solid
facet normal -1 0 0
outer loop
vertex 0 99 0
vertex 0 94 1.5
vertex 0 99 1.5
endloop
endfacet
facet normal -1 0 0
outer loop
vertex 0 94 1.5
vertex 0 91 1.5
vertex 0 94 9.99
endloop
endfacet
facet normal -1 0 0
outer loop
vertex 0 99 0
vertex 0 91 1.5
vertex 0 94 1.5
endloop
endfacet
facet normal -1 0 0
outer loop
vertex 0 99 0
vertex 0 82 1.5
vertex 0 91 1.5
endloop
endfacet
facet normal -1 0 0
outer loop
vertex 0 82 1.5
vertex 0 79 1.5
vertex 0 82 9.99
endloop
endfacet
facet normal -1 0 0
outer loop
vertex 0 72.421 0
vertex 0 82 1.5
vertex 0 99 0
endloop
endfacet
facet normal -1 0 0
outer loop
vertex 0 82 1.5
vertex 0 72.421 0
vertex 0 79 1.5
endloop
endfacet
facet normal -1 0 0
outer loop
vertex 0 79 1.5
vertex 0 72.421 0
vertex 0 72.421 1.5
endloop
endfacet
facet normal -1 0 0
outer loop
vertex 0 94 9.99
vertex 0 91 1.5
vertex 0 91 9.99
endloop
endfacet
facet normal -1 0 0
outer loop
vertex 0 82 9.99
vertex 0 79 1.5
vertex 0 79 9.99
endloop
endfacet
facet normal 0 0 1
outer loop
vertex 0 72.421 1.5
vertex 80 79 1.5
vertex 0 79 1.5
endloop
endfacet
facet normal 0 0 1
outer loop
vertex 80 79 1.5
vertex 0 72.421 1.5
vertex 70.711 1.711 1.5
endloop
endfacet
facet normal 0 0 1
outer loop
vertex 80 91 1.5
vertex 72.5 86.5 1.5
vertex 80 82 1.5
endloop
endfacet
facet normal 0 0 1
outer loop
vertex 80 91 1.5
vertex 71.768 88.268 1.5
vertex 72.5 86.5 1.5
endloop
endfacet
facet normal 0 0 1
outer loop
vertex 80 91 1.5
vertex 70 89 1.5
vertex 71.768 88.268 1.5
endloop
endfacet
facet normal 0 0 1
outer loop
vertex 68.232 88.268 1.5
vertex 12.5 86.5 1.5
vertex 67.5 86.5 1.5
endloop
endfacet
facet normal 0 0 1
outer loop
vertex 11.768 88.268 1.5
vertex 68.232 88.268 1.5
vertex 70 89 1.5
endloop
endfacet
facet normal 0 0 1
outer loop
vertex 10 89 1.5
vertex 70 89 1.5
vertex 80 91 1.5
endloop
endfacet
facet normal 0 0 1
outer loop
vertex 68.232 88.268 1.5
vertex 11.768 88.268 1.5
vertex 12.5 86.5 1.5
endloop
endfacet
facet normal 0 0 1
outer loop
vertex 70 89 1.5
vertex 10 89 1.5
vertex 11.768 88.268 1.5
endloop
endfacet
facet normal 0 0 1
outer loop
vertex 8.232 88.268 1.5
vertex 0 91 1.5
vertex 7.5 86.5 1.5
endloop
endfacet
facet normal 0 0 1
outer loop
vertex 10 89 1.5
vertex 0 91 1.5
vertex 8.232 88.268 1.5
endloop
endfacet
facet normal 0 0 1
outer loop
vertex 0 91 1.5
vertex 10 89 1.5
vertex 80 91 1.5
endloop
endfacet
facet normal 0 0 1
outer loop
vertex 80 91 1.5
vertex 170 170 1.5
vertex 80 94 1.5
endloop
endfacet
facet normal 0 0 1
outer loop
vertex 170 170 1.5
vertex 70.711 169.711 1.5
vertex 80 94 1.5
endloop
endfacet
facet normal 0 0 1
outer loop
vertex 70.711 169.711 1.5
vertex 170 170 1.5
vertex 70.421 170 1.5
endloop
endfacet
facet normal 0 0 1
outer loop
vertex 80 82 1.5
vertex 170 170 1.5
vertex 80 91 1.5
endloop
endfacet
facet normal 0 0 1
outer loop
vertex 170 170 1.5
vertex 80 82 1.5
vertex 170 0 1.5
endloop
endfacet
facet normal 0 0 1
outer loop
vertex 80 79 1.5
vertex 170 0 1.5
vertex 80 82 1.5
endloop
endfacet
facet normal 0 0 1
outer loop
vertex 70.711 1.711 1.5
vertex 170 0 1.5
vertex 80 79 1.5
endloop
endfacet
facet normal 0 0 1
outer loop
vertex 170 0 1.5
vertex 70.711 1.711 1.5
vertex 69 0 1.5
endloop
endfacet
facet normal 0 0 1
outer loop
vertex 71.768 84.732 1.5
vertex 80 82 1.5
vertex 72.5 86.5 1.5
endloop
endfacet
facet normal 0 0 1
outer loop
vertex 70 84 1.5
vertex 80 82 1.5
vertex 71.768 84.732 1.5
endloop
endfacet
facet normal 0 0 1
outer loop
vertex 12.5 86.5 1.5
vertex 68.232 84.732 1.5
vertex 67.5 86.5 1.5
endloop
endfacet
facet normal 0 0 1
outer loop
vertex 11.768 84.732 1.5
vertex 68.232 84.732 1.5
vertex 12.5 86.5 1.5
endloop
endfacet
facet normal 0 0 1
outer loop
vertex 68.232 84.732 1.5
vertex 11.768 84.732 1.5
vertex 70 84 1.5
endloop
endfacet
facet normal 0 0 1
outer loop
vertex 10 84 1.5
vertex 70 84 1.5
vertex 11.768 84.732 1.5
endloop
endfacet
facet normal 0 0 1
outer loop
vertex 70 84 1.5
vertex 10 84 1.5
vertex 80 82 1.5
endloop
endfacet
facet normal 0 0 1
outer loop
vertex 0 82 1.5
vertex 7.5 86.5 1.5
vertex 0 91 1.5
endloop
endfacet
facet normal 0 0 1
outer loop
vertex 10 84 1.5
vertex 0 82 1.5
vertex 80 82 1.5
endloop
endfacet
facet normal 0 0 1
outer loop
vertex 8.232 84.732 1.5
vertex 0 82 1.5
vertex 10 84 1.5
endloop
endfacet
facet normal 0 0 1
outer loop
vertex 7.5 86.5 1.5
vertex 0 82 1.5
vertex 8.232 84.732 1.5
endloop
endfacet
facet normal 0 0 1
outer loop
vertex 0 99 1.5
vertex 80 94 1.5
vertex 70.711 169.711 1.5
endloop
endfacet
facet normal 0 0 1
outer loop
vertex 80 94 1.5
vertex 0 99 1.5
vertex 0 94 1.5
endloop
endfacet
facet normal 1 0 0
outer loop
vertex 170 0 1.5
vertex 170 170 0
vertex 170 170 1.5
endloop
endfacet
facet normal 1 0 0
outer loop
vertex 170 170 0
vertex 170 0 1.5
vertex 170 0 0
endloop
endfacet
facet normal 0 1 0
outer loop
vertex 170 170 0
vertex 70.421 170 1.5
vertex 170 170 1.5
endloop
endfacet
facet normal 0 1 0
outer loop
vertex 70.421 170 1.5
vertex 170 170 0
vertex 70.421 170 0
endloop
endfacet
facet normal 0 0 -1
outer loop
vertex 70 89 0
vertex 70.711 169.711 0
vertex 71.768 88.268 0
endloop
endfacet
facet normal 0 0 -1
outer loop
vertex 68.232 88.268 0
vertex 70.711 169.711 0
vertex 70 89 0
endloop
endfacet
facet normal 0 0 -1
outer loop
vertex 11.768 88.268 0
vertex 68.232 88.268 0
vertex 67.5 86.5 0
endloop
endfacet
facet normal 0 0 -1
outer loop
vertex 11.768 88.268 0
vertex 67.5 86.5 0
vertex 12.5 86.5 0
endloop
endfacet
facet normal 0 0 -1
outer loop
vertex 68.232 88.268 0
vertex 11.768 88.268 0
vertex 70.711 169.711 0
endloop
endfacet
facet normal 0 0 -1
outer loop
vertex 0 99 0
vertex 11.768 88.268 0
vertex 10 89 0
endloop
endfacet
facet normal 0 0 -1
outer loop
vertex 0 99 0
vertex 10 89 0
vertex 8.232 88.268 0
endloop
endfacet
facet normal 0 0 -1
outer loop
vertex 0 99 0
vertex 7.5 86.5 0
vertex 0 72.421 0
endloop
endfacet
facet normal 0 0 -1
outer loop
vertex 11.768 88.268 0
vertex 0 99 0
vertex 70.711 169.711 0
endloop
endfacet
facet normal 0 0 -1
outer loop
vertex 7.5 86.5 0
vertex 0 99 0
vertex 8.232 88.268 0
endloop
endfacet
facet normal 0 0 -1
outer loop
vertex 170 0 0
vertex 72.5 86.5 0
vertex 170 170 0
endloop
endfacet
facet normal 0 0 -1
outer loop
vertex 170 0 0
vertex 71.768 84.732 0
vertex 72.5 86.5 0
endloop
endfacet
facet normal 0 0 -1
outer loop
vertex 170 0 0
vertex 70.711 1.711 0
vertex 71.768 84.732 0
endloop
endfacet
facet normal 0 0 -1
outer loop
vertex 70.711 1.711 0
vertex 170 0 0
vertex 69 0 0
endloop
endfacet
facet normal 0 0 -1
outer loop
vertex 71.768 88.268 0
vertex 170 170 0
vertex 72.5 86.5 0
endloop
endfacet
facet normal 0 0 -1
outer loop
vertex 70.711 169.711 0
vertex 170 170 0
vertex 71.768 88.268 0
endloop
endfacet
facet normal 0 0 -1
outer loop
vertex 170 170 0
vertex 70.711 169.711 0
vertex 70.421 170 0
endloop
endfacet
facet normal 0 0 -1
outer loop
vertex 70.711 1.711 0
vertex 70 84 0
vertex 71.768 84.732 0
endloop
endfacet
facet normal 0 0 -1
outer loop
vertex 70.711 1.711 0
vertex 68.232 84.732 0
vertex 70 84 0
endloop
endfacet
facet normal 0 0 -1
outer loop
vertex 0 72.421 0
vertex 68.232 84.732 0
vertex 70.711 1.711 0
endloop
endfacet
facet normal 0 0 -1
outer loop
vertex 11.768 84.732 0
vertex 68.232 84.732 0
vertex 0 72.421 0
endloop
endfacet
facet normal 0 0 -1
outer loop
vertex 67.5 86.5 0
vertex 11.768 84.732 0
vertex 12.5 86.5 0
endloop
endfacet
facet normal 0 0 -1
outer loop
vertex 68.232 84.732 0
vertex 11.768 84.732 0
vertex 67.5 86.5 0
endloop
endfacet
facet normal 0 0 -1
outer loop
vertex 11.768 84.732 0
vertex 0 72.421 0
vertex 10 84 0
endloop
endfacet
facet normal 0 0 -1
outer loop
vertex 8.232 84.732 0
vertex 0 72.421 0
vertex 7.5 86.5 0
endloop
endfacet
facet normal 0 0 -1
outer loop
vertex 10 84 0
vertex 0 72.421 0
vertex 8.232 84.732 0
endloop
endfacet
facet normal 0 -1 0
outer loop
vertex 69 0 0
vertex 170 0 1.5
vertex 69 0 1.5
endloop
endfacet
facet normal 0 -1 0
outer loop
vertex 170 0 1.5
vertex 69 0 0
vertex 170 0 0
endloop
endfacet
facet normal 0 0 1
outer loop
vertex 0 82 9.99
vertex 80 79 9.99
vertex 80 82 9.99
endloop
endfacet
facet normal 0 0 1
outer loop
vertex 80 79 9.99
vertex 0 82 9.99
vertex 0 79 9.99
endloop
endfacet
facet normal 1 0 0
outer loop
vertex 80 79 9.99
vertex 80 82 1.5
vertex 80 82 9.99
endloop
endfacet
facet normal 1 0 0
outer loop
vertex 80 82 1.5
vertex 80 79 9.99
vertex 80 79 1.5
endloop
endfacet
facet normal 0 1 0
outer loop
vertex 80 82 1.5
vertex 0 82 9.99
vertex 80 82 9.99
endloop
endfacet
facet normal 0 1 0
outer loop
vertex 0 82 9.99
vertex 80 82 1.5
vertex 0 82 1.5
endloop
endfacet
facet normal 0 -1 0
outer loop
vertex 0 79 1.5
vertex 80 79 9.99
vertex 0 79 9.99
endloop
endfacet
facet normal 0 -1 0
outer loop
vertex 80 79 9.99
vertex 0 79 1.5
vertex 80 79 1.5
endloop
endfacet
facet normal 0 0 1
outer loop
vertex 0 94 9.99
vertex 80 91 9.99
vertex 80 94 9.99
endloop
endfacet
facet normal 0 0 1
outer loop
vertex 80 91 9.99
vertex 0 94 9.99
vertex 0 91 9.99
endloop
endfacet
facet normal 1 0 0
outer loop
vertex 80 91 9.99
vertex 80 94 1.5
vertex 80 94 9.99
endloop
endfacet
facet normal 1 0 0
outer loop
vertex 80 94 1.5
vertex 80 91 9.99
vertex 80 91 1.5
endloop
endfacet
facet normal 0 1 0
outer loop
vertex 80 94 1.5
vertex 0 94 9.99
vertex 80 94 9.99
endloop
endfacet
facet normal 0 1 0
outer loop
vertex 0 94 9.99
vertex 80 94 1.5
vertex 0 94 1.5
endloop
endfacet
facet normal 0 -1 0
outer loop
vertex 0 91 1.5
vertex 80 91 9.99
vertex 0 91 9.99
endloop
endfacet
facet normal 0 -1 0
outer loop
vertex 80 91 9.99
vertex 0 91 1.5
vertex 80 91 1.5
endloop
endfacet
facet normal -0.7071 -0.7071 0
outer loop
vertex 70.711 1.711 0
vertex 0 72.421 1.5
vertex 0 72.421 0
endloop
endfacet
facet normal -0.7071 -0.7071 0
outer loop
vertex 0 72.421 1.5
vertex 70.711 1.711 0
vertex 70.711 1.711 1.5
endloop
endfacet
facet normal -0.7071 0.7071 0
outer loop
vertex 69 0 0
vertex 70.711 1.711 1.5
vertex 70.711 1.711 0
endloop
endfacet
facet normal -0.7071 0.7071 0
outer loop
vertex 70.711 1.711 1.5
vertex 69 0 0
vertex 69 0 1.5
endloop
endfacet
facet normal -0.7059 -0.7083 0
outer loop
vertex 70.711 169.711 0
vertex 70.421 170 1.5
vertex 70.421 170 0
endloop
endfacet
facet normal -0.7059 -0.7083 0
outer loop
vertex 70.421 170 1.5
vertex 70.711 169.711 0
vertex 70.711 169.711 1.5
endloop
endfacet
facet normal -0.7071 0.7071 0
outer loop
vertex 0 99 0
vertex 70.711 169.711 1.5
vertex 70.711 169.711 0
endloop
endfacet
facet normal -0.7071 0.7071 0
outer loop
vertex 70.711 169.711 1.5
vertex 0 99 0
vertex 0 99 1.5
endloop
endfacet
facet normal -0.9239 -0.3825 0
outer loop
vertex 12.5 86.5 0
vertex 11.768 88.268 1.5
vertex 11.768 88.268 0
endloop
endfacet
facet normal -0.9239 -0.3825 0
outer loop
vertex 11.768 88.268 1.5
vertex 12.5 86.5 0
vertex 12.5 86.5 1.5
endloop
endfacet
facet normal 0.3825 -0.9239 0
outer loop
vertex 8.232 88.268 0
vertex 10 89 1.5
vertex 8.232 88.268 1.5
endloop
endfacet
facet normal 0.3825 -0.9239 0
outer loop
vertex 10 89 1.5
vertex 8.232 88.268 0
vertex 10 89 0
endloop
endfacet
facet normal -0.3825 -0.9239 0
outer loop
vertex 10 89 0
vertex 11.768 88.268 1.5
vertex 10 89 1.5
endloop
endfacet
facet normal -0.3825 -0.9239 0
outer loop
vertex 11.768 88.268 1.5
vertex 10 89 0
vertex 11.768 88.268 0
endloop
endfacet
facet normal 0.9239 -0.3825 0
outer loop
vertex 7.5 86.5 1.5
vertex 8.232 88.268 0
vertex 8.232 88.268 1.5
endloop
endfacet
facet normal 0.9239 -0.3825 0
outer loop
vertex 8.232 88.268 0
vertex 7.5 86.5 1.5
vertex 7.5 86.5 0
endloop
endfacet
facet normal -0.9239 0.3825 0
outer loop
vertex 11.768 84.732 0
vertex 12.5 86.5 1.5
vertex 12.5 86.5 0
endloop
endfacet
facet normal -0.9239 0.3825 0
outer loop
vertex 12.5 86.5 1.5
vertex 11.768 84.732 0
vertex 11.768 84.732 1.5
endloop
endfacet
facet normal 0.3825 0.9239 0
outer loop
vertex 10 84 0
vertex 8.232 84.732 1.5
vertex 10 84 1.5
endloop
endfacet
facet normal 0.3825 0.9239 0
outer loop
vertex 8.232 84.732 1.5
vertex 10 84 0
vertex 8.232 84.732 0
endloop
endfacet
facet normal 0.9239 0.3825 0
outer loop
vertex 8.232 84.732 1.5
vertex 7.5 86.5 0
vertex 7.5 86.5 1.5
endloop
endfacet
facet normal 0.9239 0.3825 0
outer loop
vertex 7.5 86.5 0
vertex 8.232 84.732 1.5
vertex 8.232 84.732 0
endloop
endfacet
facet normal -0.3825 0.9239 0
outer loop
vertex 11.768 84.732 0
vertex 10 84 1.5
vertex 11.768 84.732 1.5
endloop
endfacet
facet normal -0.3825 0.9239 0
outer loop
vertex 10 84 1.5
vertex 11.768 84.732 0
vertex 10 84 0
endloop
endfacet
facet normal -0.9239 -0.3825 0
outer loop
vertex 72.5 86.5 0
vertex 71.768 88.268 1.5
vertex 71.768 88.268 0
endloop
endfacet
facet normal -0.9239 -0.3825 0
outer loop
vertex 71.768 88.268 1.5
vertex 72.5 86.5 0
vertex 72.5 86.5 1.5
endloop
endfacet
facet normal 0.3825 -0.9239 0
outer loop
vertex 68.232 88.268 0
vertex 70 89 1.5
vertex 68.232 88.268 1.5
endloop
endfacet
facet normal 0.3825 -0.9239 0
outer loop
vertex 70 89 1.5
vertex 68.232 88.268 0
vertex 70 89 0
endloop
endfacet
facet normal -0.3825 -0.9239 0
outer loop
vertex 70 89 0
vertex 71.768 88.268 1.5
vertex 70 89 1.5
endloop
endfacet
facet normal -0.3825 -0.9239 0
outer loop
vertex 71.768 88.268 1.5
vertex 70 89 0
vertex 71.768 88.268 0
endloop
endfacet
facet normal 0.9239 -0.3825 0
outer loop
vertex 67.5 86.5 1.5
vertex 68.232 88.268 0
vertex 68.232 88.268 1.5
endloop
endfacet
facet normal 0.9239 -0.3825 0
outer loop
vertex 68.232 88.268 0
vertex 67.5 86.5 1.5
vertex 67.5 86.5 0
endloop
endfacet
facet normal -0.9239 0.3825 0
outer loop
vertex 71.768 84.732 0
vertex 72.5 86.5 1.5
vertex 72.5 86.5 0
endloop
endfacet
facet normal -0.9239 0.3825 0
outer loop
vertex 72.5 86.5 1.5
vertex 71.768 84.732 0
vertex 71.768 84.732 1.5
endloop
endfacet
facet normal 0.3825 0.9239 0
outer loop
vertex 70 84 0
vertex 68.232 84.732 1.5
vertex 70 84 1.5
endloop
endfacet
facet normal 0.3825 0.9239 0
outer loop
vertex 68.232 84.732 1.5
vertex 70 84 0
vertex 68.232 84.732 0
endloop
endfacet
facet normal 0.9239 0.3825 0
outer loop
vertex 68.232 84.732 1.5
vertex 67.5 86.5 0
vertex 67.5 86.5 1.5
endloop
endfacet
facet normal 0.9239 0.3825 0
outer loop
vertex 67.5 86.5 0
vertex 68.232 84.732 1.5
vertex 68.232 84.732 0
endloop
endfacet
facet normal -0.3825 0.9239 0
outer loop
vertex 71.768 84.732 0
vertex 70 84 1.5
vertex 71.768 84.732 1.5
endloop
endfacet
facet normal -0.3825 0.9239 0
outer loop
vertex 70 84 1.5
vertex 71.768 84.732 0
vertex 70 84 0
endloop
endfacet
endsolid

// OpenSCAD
difference()
{
    union()
    {
        cube([170,170,1.5]);
        translate([0,170/2-4.5-1.5,0.99+0.5])cube([80,3,8.5]);
        translate([0,170/2+4.5+1.5,0.99+0.5])cube([80,3,8.5]);
        
        //translate([0,82.25,10])cube([10,8.5,8.5]);
    }
    
    union()
    {
        translate([0,-69,-1])rotate([0,0,45])cube([100,100,20]);    
        translate([0,99,-1])rotate([0,0,45])cube([100,100,20]);    
        translate([10,170/2+1.5,-1])cylinder(r=2.5, h=20);
        translate([70,170/2+1.5,-1])cylinder(r=2.5, h=20);
    }   
}
